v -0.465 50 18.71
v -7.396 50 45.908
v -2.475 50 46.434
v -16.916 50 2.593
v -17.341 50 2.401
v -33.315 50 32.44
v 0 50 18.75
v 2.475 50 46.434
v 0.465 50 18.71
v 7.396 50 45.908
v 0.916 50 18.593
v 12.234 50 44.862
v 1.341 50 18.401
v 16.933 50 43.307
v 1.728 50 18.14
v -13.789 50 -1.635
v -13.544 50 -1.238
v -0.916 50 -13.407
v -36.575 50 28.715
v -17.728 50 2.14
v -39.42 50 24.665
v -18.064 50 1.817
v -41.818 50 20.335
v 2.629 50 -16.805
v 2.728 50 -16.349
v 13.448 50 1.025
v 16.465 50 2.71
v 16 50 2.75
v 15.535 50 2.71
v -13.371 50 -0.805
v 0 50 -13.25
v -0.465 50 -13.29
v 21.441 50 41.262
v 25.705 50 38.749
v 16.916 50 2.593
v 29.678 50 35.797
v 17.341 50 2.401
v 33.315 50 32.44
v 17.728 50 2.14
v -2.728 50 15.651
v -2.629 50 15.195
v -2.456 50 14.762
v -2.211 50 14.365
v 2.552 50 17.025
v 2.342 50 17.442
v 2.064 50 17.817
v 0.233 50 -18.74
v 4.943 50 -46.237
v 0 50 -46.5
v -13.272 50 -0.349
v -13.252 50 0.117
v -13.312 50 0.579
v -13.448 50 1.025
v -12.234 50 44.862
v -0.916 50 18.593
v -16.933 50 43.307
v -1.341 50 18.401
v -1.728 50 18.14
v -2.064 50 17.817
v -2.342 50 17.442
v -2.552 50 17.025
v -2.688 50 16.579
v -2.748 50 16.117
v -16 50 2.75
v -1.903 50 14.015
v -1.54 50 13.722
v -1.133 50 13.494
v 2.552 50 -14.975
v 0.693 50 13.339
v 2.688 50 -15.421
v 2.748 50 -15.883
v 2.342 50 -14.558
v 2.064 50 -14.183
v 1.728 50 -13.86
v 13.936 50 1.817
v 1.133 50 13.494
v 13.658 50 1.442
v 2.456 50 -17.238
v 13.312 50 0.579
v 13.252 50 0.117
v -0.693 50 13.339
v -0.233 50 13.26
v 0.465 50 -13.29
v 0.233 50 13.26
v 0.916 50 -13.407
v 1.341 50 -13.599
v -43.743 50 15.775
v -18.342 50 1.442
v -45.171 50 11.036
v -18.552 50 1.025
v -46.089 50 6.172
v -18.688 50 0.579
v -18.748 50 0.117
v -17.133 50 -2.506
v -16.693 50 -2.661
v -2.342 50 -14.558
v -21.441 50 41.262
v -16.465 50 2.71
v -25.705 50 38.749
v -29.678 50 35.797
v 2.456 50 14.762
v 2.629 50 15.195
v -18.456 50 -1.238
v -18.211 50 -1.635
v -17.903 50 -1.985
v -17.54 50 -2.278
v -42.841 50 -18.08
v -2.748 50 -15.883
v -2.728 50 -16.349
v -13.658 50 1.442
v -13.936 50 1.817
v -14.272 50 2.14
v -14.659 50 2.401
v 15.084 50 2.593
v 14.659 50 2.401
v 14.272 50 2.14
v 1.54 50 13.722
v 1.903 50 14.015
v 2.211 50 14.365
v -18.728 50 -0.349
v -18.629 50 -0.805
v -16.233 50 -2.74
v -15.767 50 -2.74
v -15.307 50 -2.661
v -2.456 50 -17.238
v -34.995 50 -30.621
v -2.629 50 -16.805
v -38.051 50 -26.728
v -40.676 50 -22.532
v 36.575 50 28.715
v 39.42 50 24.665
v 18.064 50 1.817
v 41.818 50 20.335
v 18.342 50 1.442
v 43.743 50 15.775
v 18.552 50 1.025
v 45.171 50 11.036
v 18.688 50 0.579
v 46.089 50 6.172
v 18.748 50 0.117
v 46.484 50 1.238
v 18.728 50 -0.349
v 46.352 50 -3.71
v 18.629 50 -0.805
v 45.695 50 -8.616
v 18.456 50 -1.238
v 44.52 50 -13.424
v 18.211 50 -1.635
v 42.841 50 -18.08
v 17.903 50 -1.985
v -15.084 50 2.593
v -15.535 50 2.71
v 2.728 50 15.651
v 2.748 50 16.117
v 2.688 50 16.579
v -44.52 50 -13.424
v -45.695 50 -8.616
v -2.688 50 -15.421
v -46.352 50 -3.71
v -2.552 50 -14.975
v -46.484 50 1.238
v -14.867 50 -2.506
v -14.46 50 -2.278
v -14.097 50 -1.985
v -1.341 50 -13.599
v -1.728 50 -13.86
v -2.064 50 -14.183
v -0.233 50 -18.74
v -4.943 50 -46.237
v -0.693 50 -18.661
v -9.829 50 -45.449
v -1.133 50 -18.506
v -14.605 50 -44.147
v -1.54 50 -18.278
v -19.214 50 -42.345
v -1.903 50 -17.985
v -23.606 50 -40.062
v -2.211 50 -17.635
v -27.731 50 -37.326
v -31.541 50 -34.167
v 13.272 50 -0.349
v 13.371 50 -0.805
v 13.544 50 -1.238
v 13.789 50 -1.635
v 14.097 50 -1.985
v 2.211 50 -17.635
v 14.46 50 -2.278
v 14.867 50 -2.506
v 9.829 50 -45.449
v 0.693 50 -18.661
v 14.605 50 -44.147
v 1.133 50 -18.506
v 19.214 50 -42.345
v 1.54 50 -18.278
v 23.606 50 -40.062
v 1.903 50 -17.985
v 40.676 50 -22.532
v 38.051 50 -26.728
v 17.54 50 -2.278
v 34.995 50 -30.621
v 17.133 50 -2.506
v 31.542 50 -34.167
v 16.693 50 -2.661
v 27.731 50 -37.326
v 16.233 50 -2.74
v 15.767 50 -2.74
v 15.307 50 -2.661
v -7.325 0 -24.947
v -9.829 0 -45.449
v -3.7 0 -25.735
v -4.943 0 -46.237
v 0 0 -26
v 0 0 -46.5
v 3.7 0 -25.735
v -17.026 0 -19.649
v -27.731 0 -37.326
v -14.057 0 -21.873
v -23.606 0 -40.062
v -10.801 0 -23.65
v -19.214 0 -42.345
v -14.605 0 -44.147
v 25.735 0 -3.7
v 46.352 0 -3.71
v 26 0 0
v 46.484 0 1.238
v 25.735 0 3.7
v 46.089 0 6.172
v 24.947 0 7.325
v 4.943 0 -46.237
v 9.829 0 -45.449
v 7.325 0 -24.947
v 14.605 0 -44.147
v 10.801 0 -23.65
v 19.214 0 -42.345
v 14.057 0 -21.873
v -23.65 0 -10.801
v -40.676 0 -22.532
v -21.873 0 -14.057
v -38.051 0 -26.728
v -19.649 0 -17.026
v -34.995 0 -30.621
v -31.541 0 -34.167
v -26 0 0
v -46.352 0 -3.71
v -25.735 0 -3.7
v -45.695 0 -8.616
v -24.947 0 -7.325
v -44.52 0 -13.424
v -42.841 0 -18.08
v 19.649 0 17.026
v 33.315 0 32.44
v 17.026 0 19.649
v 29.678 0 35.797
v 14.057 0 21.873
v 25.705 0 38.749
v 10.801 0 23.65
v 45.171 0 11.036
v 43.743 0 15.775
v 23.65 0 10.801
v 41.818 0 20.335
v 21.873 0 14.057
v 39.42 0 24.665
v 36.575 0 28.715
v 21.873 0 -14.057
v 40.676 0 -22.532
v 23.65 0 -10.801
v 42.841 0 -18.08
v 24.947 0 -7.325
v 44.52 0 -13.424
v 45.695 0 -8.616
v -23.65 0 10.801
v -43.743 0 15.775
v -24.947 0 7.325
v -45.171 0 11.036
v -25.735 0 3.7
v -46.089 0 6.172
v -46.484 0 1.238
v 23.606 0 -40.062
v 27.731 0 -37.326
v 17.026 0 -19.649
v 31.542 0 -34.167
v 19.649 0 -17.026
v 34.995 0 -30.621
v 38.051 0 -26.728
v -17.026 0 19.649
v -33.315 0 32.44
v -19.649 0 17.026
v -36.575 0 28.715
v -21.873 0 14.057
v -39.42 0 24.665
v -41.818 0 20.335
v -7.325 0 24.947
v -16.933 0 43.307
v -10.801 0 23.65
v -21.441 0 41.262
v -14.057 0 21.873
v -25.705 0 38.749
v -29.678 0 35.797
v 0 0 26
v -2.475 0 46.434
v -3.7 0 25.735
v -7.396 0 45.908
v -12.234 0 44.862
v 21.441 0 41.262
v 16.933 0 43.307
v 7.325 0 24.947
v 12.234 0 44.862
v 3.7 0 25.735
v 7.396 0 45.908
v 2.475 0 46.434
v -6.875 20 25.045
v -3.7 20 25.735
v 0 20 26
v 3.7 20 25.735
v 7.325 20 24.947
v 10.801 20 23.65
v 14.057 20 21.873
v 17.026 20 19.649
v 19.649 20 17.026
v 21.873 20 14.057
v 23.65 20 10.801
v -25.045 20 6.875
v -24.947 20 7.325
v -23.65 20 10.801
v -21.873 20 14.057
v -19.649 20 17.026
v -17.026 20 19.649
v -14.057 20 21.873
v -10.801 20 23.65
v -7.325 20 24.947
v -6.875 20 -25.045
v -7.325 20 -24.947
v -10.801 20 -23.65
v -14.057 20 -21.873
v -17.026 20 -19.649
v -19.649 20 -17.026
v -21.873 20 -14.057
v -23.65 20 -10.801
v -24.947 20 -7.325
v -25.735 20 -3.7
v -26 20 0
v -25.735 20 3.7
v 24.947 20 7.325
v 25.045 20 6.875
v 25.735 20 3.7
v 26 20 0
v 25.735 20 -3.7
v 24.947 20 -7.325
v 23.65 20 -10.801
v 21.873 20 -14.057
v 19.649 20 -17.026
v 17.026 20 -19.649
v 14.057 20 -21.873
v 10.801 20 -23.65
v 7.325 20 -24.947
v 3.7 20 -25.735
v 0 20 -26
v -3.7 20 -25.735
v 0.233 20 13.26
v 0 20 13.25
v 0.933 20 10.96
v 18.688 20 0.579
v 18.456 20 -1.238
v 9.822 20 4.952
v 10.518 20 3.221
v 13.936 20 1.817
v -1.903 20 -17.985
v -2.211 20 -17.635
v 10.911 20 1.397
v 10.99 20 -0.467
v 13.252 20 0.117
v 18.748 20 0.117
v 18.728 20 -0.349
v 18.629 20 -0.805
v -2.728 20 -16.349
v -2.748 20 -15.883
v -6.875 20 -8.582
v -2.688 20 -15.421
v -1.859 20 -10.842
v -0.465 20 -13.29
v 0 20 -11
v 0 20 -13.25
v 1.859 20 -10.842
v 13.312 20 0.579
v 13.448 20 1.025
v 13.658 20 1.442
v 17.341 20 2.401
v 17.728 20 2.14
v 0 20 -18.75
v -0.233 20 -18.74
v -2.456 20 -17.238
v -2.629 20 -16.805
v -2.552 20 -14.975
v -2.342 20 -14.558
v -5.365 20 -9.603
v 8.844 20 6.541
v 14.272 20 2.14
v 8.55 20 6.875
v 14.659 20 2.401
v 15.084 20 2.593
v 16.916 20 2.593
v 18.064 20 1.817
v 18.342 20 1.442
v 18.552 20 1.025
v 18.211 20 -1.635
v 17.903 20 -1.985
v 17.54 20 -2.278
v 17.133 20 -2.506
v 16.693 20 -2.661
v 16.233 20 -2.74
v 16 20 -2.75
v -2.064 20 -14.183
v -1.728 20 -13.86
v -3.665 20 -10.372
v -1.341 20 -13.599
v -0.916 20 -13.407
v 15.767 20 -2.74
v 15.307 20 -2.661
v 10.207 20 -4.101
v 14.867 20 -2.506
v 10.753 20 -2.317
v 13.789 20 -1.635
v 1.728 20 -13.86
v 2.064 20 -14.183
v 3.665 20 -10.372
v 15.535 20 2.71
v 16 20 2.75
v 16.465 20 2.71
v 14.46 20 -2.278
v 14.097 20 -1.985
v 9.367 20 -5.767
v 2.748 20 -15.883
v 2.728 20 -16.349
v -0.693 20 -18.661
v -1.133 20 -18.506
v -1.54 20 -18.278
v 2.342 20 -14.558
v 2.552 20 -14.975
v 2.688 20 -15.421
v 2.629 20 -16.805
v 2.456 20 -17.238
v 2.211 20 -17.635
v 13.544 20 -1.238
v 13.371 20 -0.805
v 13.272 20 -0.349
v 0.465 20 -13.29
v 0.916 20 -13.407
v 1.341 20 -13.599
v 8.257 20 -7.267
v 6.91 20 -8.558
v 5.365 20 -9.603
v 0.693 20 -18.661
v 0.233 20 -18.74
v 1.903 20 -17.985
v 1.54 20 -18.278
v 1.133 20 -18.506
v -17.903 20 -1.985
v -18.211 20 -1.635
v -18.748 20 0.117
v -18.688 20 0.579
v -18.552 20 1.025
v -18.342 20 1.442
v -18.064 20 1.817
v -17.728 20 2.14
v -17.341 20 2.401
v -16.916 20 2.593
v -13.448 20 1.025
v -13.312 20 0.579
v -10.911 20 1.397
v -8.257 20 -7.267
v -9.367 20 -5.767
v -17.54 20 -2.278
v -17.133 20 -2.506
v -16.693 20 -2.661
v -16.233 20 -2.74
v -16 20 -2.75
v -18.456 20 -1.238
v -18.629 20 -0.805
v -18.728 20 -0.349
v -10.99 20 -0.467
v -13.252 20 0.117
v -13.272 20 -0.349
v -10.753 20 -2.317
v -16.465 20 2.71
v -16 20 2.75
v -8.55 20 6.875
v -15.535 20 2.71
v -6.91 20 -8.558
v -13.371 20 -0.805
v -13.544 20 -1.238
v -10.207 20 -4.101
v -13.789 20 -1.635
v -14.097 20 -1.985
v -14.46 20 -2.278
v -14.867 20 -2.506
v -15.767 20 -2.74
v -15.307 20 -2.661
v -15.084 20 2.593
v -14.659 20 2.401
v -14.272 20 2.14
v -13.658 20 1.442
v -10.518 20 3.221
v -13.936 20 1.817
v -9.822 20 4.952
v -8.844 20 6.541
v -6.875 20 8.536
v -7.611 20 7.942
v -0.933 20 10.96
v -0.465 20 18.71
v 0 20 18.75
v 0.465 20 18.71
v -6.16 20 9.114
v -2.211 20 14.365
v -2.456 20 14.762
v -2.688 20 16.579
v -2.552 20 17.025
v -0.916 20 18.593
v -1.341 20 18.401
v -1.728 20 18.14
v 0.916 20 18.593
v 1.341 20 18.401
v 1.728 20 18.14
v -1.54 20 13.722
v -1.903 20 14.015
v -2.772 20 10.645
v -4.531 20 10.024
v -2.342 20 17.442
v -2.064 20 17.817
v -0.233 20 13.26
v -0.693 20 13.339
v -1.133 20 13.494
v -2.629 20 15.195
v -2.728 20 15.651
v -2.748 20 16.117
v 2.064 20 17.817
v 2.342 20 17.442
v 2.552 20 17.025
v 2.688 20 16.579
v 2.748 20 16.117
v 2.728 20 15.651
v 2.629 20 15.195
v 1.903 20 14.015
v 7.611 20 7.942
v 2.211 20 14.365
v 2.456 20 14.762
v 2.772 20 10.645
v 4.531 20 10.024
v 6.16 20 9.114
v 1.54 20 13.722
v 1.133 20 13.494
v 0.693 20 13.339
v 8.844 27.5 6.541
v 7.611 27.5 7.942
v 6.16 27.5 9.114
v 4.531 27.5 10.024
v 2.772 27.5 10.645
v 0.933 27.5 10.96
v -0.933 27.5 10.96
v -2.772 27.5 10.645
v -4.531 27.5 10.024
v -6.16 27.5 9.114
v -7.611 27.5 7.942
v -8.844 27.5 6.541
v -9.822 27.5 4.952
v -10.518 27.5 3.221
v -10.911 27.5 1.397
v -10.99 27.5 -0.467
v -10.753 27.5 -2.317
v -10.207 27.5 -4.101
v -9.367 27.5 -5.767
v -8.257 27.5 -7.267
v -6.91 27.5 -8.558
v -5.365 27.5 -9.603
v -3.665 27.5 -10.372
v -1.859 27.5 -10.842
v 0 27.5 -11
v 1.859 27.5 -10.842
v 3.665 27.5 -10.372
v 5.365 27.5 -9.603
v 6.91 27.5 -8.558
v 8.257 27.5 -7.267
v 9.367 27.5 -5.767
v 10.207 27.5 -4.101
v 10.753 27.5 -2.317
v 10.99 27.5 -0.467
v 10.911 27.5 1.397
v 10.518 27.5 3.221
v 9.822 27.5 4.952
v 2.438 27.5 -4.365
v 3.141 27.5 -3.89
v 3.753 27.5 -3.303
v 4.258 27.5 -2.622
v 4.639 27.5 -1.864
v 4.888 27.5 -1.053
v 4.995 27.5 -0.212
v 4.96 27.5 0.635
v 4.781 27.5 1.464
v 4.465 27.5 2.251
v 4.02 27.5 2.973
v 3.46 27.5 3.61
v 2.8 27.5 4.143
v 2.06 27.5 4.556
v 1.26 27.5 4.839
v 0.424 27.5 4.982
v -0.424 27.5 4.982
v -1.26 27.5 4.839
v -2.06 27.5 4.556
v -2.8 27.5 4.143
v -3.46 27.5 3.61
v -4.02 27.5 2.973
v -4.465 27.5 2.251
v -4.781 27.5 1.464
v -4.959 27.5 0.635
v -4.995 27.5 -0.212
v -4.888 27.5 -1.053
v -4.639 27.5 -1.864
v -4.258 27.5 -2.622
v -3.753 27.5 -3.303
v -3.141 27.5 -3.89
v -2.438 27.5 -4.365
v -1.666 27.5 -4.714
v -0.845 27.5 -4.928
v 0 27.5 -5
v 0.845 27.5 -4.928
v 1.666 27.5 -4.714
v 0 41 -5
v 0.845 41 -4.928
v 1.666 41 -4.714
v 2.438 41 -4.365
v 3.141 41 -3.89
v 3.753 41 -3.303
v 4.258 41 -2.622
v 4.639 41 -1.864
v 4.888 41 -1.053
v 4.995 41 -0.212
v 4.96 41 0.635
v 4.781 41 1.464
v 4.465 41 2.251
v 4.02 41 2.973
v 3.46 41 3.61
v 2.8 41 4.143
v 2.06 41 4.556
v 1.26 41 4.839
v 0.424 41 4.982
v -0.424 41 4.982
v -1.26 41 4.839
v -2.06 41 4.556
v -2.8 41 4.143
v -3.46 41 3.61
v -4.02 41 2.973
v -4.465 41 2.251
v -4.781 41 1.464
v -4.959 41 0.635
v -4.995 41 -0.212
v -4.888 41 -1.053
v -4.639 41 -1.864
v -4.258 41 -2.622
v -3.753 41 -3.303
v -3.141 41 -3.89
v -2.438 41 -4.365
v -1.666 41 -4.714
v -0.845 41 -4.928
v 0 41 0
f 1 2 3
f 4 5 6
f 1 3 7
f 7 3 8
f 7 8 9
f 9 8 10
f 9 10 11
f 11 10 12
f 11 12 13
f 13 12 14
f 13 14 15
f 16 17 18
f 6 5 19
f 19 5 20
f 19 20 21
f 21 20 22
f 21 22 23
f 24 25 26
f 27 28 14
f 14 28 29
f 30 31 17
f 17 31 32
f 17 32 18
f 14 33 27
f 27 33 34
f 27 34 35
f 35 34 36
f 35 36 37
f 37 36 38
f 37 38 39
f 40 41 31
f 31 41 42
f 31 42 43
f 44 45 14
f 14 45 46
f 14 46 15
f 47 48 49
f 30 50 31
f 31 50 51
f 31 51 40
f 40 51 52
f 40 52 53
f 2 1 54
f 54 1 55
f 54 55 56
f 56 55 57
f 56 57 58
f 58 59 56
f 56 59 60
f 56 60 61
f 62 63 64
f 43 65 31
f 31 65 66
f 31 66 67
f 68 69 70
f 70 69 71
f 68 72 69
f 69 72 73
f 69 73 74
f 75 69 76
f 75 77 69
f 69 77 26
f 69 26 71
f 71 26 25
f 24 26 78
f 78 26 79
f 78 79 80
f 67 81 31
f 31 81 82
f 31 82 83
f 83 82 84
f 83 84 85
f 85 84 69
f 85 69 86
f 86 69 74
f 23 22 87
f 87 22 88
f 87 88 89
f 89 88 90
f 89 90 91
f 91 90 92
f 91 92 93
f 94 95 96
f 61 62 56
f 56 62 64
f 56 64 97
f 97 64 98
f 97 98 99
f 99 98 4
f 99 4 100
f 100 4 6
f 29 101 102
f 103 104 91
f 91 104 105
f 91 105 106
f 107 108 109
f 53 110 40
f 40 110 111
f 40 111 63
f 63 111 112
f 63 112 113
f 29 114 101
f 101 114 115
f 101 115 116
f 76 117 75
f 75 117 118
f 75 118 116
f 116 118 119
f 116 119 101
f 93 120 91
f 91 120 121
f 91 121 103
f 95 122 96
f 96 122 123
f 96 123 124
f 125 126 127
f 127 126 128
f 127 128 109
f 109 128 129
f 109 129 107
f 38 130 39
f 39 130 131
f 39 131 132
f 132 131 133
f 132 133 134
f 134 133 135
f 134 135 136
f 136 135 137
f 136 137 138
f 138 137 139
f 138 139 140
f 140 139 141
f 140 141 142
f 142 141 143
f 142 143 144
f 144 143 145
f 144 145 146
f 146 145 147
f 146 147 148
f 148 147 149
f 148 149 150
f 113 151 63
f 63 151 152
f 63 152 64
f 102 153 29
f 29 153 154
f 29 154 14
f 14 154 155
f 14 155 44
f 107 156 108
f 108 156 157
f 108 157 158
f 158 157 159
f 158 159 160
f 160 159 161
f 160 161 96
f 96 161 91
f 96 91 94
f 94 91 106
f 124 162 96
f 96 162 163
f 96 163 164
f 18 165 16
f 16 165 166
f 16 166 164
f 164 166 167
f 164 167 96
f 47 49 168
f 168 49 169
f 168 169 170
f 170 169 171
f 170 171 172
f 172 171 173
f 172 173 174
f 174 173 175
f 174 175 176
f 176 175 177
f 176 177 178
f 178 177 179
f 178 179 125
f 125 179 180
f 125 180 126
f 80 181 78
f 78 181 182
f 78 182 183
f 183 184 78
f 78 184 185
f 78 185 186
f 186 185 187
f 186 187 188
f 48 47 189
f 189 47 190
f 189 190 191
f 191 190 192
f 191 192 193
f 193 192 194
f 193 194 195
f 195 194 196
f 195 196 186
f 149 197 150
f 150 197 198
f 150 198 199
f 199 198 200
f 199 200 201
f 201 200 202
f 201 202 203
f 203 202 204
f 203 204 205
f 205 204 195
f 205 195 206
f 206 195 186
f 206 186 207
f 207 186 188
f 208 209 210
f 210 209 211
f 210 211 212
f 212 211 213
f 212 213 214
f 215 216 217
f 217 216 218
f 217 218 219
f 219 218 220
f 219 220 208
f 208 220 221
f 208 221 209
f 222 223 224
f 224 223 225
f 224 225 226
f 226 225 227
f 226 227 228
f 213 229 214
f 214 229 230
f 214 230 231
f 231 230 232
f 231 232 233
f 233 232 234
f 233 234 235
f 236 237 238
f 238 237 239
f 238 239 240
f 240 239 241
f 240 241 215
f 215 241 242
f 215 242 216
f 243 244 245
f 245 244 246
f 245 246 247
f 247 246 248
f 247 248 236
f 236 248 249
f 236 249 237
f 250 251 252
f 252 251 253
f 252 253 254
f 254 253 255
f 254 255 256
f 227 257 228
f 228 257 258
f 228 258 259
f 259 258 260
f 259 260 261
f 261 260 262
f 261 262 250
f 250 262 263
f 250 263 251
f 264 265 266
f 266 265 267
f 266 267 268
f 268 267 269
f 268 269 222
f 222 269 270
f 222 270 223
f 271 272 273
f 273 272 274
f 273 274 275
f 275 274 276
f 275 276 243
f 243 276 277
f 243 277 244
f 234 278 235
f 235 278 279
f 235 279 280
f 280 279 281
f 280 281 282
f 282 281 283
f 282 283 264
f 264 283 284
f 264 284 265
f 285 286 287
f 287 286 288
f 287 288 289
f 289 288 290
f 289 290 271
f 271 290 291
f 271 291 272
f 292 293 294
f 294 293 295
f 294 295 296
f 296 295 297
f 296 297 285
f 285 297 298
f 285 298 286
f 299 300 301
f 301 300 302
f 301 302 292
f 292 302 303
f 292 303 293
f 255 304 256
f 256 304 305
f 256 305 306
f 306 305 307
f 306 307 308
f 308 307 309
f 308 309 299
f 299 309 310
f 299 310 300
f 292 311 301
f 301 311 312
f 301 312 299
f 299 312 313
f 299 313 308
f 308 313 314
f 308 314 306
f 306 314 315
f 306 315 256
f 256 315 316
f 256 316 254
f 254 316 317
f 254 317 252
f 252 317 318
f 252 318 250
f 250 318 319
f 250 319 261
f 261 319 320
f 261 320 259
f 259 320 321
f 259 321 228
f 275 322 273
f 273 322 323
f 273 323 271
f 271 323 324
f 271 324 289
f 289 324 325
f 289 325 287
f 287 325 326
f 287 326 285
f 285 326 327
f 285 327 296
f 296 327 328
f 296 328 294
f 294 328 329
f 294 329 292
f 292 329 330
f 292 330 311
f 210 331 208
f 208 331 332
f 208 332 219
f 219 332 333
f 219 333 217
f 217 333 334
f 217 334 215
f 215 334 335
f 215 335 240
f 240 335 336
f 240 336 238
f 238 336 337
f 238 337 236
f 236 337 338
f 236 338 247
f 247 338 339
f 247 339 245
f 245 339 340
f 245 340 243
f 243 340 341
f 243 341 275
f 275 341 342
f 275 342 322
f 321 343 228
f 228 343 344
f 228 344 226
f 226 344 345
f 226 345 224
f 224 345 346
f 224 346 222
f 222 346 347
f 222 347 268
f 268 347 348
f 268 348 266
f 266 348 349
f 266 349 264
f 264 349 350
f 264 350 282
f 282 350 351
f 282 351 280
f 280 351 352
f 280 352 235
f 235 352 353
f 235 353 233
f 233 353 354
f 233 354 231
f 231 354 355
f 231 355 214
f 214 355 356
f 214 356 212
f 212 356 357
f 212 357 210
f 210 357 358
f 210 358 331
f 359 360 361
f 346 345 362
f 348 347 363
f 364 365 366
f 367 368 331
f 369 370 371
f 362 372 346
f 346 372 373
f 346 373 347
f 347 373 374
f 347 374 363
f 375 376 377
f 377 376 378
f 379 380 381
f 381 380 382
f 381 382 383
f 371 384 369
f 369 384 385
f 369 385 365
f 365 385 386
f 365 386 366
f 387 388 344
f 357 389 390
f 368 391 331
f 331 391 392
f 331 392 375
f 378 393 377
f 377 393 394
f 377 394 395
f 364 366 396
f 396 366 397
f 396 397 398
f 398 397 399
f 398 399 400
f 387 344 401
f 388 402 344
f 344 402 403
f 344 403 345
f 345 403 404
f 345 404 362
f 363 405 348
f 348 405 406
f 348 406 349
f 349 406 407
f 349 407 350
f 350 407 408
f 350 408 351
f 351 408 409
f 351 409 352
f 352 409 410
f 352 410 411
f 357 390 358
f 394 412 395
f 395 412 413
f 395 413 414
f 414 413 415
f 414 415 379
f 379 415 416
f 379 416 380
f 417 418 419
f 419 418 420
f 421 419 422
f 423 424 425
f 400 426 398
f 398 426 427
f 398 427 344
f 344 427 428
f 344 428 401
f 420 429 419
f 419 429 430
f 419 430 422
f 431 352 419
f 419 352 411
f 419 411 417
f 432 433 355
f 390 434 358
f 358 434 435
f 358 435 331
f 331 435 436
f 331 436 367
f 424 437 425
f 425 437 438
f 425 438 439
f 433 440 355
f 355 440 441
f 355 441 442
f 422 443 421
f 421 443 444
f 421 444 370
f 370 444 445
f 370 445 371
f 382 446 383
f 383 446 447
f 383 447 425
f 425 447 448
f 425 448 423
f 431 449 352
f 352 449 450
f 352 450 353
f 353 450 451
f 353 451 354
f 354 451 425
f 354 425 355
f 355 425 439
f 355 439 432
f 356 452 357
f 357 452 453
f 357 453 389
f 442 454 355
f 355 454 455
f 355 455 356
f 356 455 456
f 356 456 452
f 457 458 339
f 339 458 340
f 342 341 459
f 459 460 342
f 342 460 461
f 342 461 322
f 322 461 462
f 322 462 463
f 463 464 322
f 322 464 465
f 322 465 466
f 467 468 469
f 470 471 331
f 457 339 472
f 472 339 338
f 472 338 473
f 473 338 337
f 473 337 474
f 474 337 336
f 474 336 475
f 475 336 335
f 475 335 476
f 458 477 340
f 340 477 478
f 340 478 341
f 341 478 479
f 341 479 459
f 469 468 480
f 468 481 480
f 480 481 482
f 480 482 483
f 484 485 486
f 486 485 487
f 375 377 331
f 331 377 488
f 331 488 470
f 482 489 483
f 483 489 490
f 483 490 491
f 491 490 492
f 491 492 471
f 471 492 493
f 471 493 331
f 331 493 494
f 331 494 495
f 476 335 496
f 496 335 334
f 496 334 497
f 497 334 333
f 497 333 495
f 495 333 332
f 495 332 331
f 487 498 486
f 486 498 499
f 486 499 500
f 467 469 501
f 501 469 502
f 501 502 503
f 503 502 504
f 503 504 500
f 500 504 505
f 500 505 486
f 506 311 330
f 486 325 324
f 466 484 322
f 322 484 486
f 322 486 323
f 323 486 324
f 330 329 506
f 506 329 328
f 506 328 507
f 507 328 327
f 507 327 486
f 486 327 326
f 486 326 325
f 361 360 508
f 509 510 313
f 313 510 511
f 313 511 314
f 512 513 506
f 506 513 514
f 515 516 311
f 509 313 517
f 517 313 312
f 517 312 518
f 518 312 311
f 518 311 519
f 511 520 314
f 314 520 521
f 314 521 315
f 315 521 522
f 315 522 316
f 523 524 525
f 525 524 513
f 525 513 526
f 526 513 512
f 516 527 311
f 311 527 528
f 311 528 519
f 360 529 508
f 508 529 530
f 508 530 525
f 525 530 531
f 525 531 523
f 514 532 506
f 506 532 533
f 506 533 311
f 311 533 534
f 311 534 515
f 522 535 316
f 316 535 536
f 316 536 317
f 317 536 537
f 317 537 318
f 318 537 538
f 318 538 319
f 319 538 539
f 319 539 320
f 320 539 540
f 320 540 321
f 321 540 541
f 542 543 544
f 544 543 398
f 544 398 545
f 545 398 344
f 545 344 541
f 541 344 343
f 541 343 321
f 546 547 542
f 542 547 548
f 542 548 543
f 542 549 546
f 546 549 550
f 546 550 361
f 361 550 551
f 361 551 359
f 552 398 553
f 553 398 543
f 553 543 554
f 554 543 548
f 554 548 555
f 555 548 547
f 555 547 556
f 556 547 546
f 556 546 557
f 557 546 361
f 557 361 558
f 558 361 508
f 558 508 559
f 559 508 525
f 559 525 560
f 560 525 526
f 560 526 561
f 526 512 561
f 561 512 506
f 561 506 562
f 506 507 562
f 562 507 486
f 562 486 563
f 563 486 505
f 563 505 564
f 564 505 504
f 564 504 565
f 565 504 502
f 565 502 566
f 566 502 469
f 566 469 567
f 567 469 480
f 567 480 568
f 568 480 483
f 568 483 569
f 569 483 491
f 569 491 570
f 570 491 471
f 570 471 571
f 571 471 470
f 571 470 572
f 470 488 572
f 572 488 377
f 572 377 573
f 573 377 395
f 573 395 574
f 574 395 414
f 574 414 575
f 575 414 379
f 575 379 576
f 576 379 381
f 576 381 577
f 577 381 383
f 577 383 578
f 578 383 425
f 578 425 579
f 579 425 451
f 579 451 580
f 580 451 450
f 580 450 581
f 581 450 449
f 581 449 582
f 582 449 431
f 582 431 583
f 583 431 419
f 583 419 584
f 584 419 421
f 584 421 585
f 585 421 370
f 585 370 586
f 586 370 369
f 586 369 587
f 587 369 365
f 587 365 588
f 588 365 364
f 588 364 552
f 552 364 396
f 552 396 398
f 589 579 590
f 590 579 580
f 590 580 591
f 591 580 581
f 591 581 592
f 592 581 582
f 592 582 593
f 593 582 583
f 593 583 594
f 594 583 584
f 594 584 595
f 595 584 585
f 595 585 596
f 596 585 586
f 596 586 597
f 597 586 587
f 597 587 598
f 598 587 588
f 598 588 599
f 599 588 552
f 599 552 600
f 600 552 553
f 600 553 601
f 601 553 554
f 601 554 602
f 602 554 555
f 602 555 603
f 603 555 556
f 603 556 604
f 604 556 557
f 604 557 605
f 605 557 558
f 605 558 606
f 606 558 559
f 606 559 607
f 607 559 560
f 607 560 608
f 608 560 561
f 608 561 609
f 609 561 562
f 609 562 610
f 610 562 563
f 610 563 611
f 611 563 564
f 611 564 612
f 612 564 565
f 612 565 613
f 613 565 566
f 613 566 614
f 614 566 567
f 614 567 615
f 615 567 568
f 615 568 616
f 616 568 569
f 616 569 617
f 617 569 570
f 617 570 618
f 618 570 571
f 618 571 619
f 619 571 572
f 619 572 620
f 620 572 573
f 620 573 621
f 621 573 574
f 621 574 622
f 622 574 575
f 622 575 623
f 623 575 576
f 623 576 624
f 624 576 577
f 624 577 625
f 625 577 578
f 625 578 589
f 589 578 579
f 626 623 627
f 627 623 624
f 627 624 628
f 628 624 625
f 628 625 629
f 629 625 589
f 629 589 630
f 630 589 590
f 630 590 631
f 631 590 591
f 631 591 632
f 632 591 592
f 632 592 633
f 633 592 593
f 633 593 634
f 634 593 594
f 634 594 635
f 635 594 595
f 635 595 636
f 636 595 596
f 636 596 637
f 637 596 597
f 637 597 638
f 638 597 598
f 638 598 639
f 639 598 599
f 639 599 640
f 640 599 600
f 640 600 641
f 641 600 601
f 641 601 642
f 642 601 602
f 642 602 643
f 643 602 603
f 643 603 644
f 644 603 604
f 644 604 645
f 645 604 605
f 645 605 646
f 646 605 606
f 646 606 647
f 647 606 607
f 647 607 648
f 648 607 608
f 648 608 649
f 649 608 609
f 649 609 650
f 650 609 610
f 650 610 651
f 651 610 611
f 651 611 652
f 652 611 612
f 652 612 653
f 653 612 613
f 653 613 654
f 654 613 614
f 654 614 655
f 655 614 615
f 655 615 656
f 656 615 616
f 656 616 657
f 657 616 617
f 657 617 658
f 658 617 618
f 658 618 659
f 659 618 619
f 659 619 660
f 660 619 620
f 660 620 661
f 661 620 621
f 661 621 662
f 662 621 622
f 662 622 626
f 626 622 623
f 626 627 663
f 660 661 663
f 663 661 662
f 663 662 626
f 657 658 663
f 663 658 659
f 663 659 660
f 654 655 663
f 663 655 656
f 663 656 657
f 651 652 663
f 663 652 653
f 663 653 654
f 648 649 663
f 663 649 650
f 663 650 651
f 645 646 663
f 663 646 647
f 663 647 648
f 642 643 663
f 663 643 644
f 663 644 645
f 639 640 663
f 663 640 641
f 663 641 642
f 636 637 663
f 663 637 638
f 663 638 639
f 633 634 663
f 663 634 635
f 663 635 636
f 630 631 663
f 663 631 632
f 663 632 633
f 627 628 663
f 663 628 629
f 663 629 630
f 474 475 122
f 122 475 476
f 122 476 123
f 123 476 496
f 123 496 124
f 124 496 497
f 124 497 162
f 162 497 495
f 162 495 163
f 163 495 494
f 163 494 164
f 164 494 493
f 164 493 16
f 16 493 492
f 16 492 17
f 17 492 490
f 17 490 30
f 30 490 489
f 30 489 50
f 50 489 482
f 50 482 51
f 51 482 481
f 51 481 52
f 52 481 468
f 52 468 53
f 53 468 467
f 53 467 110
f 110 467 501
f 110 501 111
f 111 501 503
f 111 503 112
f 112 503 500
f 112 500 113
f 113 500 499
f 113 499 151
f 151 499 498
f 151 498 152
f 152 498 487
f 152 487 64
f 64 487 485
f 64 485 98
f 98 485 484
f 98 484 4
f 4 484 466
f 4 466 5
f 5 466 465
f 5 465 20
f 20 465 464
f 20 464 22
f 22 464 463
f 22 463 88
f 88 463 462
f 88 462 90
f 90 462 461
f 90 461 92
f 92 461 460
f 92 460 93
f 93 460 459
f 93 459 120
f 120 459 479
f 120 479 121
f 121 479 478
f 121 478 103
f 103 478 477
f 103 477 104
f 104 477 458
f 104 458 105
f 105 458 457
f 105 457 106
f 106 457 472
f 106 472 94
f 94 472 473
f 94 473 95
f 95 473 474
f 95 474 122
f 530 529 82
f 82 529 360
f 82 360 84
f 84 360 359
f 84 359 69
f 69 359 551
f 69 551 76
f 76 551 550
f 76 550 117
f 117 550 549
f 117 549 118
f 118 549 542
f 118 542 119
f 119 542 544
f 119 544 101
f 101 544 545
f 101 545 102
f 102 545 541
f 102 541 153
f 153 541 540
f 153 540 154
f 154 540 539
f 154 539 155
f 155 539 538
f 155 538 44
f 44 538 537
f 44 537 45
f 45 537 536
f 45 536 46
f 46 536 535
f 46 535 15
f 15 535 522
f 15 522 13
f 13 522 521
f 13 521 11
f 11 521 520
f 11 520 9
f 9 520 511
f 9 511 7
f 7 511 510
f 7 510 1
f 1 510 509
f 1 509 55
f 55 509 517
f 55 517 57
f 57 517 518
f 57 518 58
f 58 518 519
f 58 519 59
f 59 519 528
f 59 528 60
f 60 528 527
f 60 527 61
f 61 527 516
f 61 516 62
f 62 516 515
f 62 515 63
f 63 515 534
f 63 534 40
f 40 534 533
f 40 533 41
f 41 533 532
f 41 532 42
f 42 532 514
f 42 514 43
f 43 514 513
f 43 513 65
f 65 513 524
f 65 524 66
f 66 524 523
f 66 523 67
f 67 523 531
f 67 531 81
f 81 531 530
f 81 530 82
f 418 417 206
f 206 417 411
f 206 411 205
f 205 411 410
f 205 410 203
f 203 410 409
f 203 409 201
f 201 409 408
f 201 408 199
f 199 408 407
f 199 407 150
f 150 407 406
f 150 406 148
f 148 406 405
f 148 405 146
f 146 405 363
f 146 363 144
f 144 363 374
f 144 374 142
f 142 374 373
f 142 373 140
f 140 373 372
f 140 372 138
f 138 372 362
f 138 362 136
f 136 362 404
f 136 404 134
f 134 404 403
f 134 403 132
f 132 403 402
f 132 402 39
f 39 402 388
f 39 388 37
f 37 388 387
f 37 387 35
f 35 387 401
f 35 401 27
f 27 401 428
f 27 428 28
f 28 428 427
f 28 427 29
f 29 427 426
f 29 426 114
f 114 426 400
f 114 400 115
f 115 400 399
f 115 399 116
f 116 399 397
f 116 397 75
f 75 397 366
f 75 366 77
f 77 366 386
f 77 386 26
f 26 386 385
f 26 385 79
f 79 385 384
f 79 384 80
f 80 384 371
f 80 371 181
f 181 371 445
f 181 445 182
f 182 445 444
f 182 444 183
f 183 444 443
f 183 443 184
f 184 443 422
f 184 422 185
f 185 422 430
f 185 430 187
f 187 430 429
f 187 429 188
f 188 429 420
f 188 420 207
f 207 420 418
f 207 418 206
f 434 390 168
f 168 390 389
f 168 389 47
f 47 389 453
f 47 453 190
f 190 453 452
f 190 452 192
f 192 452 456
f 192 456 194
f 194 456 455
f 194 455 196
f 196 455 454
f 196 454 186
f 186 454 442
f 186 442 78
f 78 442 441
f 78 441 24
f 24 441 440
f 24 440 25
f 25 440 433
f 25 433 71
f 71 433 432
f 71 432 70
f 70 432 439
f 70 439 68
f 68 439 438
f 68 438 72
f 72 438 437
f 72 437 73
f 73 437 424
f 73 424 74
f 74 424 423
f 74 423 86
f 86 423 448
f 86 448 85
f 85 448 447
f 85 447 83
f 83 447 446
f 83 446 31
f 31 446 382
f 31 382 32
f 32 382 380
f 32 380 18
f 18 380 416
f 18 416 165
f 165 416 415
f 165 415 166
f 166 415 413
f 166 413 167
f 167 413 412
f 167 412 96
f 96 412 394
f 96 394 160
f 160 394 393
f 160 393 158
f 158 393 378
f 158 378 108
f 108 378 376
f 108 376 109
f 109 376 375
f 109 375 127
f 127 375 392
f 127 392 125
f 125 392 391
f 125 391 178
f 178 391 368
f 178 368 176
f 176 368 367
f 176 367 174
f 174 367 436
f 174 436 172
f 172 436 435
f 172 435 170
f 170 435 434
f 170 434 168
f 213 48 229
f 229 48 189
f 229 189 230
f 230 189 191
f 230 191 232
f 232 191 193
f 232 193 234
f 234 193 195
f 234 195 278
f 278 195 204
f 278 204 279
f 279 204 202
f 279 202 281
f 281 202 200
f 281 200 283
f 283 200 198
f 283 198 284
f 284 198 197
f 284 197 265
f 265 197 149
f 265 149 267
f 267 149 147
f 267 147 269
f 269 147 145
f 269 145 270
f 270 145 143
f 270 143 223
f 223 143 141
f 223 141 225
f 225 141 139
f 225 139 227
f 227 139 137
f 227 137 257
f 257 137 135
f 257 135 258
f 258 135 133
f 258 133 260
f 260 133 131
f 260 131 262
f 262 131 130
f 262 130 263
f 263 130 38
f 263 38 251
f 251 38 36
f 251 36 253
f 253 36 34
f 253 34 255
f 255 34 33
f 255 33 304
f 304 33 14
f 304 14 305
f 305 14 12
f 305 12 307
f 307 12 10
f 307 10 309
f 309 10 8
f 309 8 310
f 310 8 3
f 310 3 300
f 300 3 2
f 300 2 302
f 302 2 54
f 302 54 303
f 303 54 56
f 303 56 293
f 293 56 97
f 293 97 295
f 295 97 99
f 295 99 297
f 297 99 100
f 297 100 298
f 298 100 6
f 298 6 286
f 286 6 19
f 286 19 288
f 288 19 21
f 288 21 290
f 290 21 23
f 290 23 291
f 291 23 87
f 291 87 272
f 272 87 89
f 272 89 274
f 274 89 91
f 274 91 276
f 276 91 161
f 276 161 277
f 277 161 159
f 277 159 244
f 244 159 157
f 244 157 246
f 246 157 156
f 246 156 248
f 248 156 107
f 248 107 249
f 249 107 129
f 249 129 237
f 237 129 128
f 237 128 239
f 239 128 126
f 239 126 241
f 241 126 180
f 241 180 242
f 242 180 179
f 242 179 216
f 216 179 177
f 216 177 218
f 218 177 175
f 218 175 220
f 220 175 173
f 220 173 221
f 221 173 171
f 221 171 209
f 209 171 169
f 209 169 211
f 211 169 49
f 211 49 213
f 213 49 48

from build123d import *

# Parameters (mm, degrees)
ESQUISSE1_R              = 47.75
BOSS_EXTRU_1_DEPTH       = 50
ESQUISSE2_R              = 26
ENL_V_MAT_EXTRU_1_DEPTH  = 20
ESQUISSE3_R              = 11
ENL_V_MAT_EXTRU_5_DEPTH  = 7.5
ESQUISSE4_R              = 5
ENL_V_MAT_EXTRU_6_DEPTH  = 13.5
ESQUISSE11_R             = 2.75
ENL_V_MAT_EXTRU_11_DEPTH = 85.024549984
ESQUISSE12_R             = 47.75
ESQUISSE12_R_2           = 46.5
ENL_V_MAT_EXTRU_12_DEPTH = 85.024549984


with BuildPart() as part:
    # Esquisse1 → Boss.-Extru.1 (new body)
    with BuildSketch(Plane(origin=(0, 0, 0), x_dir=(1, 0, 0), z_dir=(0, 1, 0))):
        with Locations(Location((0, 0, 0), (0, 0, 270))):
            Circle(ESQUISSE1_R)
    extrude(amount=BOSS_EXTRU_1_DEPTH)

    # Esquisse2 → Enlèv. mat.-Extru.1 (cut)
    with BuildSketch(Plane(origin=(0, 0, 0), x_dir=(-1, 0, 0), z_dir=(0, -1, 0))):
        with Locations(Location((0, 0, 0), (0, 0, 90))):
            Circle(ESQUISSE2_R)
    extrude(amount=-ENL_V_MAT_EXTRU_1_DEPTH, mode=Mode.SUBTRACT)

    # Esquisse3 → Enlèv. mat.-Extru.5 (cut)
    with BuildSketch(Plane(origin=(0, 20, 0), x_dir=(-1, 0, 0), z_dir=(0, -1, 0))):
        with Locations(Location((0, 0, 0), (0, 0, 90))):
            Circle(ESQUISSE3_R)
    extrude(amount=-ENL_V_MAT_EXTRU_5_DEPTH, mode=Mode.SUBTRACT)

    # Esquisse4 → Enlèv. mat.-Extru.6 (cut)
    with BuildSketch(Plane(origin=(0, 27.5, 0), x_dir=(-1, 0, 0), z_dir=(0, -1, 0))):
        with Locations(Location((0, 0, 0), (0, 0, 90))):
            Circle(ESQUISSE4_R)
    extrude(amount=-ENL_V_MAT_EXTRU_6_DEPTH, mode=Mode.SUBTRACT)

    # Esquisse11 → Enlèv. mat.-Extru.11 (cut, through all)
    with BuildSketch(Plane(origin=(0, 50, 0), x_dir=(1, 0, 0), z_dir=(0, 1, 0))):
        with Locations(Location((-16, 0, 0), (0, 0, 270))):
            Circle(ESQUISSE11_R)
        with Locations(Location((0, 16, 0), (0, 0, 270))):
            Circle(ESQUISSE11_R)
        with Locations(Location((16, 0, 0), (0, 0, 270))):
            Circle(ESQUISSE11_R)
        with Locations(Location((0, -16, 0), (0, 0, 270))):
            Circle(ESQUISSE11_R)
    extrude(amount=-ENL_V_MAT_EXTRU_11_DEPTH, mode=Mode.SUBTRACT)

    # Esquisse12 → Enlèv. mat.-Extru.12 (cut, through all)
    with BuildSketch(Plane.XZ):
        Circle(ESQUISSE12_R)
        with Locations(Location((0, 0, 0), (0, 0, 270))):
            Circle(ESQUISSE12_R_2, mode=Mode.SUBTRACT)
    extrude(amount=-ENL_V_MAT_EXTRU_12_DEPTH, mode=Mode.SUBTRACT)


solid = part.part
